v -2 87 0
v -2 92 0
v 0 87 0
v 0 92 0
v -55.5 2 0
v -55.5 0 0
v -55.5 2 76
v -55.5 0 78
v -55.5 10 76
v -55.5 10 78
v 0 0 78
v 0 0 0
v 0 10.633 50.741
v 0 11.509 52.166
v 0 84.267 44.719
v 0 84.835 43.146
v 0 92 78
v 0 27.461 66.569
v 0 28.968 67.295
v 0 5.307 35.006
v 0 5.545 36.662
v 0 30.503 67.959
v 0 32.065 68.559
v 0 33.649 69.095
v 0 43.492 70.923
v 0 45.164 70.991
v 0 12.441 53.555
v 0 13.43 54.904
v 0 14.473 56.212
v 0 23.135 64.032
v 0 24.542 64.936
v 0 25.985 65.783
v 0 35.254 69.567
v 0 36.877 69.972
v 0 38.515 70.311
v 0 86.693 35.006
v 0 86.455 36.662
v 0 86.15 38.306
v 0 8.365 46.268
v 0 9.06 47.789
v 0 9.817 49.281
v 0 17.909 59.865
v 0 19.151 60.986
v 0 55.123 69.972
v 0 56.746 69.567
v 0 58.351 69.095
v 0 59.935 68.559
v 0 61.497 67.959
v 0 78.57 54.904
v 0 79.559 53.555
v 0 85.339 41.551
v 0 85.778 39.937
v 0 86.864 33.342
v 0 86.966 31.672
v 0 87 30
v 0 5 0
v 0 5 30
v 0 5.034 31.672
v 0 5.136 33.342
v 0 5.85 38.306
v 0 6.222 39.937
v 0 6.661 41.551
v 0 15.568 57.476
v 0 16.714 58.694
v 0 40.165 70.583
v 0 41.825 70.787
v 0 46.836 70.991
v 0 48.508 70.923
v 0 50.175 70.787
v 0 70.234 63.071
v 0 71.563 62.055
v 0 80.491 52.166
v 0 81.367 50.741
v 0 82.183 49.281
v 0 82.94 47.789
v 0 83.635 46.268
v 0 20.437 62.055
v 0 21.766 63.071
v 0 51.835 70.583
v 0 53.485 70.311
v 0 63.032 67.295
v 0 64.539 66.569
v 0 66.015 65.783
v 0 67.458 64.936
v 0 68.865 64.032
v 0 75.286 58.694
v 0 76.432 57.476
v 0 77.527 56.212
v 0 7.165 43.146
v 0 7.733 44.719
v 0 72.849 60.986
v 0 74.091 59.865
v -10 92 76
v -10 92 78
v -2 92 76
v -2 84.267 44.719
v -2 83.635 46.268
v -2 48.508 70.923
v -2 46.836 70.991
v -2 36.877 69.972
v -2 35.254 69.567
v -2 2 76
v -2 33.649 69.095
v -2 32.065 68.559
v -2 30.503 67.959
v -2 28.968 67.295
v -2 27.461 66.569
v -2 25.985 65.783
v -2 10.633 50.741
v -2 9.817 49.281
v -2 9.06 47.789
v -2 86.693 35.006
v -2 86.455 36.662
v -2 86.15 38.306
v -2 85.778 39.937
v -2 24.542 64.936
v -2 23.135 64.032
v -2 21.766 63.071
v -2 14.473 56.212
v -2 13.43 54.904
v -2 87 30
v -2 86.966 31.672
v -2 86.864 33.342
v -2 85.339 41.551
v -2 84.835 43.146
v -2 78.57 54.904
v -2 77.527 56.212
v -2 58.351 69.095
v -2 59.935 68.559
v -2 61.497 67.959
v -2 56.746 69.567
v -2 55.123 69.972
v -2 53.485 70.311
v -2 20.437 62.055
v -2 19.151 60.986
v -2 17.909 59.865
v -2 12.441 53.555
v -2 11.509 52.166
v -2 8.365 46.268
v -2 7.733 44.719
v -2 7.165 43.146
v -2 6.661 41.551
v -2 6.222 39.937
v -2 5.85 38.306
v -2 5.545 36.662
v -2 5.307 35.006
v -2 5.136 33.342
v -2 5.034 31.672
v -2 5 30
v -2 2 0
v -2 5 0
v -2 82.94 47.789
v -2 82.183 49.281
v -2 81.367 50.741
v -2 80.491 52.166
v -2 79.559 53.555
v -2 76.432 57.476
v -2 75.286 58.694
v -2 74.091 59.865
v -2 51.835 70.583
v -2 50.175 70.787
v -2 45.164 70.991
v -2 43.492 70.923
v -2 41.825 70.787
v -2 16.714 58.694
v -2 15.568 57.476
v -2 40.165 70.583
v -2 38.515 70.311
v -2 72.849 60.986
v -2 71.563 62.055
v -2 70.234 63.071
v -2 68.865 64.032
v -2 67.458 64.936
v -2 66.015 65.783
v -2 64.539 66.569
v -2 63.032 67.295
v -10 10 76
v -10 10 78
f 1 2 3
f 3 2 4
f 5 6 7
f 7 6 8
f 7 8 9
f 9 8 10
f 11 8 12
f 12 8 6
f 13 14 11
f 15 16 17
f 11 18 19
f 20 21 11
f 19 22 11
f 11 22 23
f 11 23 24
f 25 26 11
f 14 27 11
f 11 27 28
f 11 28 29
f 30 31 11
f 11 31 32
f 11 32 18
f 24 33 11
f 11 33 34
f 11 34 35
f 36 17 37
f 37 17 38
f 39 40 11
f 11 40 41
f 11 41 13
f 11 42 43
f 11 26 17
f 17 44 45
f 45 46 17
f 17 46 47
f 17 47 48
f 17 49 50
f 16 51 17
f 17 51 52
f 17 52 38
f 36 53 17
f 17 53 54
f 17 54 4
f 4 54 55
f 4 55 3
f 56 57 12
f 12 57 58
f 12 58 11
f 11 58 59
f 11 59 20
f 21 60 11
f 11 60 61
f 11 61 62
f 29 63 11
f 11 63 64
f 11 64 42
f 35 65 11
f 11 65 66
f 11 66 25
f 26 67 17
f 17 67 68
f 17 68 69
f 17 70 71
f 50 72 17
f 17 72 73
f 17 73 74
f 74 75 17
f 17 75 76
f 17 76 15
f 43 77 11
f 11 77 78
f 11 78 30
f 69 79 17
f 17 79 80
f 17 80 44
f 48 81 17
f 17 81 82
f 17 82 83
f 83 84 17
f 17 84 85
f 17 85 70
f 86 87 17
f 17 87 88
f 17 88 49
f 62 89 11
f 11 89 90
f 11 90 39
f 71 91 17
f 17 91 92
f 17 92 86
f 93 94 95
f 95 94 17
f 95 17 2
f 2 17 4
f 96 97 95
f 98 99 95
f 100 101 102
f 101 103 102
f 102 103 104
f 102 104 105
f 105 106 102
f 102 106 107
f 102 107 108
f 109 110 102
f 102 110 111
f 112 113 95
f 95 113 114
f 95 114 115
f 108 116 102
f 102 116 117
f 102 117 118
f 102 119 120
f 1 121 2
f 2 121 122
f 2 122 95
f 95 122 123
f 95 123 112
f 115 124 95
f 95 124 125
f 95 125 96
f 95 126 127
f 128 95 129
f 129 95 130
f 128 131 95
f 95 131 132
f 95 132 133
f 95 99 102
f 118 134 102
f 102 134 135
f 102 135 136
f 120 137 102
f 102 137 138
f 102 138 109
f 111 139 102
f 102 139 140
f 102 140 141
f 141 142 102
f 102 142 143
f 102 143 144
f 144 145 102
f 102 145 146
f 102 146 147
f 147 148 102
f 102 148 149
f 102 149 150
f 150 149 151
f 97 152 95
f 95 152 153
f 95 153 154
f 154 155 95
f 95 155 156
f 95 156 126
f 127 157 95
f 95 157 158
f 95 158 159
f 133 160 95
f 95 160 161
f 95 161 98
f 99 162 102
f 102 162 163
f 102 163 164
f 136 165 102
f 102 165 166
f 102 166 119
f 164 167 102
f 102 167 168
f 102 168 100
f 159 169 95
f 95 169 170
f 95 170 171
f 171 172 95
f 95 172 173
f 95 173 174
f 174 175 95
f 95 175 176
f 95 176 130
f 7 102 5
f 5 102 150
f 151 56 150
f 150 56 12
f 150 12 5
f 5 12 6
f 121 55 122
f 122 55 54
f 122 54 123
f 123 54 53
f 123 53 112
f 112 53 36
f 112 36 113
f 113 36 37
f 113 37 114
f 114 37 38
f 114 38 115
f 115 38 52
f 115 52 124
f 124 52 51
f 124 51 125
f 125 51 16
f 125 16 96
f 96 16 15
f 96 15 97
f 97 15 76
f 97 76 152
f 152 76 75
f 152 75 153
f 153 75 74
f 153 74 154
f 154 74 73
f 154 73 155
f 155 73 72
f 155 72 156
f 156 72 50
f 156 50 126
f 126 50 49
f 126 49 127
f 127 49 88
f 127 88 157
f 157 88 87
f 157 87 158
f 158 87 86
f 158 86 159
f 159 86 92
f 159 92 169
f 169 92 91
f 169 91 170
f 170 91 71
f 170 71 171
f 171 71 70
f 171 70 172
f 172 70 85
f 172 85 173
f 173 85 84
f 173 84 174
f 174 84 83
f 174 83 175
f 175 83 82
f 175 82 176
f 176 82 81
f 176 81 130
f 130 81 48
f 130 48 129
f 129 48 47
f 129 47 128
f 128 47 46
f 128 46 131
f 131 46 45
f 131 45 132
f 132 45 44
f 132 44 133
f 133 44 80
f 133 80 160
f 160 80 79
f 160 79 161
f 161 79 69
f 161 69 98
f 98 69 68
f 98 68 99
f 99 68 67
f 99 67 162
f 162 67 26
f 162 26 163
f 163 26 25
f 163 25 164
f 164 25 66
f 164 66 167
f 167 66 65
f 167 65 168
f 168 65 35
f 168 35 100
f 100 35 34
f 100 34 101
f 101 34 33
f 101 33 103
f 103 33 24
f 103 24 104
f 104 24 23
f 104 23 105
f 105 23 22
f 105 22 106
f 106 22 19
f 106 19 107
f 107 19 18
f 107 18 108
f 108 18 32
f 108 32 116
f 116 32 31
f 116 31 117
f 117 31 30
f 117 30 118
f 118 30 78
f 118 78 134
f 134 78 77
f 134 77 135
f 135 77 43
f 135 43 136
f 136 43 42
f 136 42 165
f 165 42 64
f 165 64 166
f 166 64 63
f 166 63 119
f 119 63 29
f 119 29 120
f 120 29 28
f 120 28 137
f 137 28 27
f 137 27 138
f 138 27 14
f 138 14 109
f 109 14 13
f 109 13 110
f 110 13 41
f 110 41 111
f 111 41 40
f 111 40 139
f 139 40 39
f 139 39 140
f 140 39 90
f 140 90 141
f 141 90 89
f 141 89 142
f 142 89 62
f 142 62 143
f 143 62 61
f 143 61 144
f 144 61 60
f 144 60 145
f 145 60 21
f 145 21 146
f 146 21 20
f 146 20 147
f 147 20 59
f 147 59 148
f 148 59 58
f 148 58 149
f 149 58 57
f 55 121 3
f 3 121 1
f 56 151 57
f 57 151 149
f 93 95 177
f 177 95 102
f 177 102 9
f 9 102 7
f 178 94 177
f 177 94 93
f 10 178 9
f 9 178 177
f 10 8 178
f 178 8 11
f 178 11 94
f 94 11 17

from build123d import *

# Parameters (mm, degrees)
EXTRUDE_1_DEPTH     = 76
CUT_EXTRUDE_1_DEPTH = 70
EXTRUDE_2_DEPTH     = 2


with BuildPart() as part:
    # 草图1 → 凸台-拉伸1 (new body)
    with BuildSketch(Plane.XY):
        Polygon((-55.5, 0), (0, 0), (0, 92), (-2, 92), (-2, 2), (-55.5, 2), align=None)
    extrude(amount=EXTRUDE_1_DEPTH)

    # 草图2 → 切除-拉伸1 (cut)
    with BuildSketch(Plane(origin=(0, 0, 0), x_dir=(0, 0, -1), z_dir=(1, 0, 0))):
        with BuildLine():
            Line((-30, 5), (0, 5))
            Line((0, 5), (0, 87))
            Line((0, 87), (-30, 87))
            ThreePointArc((-30, 87), (-71, 46), (-30, 5))
        make_face()
    extrude(amount=-CUT_EXTRUDE_1_DEPTH, mode=Mode.SUBTRACT)

    # 草图3 → 凸台-拉伸2 (add)
    with BuildSketch(Plane.XY.offset(76)):
        Polygon((0, 92), (-10, 92), (-10, 10), (-55.5, 10), (-55.5, 0), (0, 0), align=None)
    extrude(amount=EXTRUDE_2_DEPTH)


solid = part.part
